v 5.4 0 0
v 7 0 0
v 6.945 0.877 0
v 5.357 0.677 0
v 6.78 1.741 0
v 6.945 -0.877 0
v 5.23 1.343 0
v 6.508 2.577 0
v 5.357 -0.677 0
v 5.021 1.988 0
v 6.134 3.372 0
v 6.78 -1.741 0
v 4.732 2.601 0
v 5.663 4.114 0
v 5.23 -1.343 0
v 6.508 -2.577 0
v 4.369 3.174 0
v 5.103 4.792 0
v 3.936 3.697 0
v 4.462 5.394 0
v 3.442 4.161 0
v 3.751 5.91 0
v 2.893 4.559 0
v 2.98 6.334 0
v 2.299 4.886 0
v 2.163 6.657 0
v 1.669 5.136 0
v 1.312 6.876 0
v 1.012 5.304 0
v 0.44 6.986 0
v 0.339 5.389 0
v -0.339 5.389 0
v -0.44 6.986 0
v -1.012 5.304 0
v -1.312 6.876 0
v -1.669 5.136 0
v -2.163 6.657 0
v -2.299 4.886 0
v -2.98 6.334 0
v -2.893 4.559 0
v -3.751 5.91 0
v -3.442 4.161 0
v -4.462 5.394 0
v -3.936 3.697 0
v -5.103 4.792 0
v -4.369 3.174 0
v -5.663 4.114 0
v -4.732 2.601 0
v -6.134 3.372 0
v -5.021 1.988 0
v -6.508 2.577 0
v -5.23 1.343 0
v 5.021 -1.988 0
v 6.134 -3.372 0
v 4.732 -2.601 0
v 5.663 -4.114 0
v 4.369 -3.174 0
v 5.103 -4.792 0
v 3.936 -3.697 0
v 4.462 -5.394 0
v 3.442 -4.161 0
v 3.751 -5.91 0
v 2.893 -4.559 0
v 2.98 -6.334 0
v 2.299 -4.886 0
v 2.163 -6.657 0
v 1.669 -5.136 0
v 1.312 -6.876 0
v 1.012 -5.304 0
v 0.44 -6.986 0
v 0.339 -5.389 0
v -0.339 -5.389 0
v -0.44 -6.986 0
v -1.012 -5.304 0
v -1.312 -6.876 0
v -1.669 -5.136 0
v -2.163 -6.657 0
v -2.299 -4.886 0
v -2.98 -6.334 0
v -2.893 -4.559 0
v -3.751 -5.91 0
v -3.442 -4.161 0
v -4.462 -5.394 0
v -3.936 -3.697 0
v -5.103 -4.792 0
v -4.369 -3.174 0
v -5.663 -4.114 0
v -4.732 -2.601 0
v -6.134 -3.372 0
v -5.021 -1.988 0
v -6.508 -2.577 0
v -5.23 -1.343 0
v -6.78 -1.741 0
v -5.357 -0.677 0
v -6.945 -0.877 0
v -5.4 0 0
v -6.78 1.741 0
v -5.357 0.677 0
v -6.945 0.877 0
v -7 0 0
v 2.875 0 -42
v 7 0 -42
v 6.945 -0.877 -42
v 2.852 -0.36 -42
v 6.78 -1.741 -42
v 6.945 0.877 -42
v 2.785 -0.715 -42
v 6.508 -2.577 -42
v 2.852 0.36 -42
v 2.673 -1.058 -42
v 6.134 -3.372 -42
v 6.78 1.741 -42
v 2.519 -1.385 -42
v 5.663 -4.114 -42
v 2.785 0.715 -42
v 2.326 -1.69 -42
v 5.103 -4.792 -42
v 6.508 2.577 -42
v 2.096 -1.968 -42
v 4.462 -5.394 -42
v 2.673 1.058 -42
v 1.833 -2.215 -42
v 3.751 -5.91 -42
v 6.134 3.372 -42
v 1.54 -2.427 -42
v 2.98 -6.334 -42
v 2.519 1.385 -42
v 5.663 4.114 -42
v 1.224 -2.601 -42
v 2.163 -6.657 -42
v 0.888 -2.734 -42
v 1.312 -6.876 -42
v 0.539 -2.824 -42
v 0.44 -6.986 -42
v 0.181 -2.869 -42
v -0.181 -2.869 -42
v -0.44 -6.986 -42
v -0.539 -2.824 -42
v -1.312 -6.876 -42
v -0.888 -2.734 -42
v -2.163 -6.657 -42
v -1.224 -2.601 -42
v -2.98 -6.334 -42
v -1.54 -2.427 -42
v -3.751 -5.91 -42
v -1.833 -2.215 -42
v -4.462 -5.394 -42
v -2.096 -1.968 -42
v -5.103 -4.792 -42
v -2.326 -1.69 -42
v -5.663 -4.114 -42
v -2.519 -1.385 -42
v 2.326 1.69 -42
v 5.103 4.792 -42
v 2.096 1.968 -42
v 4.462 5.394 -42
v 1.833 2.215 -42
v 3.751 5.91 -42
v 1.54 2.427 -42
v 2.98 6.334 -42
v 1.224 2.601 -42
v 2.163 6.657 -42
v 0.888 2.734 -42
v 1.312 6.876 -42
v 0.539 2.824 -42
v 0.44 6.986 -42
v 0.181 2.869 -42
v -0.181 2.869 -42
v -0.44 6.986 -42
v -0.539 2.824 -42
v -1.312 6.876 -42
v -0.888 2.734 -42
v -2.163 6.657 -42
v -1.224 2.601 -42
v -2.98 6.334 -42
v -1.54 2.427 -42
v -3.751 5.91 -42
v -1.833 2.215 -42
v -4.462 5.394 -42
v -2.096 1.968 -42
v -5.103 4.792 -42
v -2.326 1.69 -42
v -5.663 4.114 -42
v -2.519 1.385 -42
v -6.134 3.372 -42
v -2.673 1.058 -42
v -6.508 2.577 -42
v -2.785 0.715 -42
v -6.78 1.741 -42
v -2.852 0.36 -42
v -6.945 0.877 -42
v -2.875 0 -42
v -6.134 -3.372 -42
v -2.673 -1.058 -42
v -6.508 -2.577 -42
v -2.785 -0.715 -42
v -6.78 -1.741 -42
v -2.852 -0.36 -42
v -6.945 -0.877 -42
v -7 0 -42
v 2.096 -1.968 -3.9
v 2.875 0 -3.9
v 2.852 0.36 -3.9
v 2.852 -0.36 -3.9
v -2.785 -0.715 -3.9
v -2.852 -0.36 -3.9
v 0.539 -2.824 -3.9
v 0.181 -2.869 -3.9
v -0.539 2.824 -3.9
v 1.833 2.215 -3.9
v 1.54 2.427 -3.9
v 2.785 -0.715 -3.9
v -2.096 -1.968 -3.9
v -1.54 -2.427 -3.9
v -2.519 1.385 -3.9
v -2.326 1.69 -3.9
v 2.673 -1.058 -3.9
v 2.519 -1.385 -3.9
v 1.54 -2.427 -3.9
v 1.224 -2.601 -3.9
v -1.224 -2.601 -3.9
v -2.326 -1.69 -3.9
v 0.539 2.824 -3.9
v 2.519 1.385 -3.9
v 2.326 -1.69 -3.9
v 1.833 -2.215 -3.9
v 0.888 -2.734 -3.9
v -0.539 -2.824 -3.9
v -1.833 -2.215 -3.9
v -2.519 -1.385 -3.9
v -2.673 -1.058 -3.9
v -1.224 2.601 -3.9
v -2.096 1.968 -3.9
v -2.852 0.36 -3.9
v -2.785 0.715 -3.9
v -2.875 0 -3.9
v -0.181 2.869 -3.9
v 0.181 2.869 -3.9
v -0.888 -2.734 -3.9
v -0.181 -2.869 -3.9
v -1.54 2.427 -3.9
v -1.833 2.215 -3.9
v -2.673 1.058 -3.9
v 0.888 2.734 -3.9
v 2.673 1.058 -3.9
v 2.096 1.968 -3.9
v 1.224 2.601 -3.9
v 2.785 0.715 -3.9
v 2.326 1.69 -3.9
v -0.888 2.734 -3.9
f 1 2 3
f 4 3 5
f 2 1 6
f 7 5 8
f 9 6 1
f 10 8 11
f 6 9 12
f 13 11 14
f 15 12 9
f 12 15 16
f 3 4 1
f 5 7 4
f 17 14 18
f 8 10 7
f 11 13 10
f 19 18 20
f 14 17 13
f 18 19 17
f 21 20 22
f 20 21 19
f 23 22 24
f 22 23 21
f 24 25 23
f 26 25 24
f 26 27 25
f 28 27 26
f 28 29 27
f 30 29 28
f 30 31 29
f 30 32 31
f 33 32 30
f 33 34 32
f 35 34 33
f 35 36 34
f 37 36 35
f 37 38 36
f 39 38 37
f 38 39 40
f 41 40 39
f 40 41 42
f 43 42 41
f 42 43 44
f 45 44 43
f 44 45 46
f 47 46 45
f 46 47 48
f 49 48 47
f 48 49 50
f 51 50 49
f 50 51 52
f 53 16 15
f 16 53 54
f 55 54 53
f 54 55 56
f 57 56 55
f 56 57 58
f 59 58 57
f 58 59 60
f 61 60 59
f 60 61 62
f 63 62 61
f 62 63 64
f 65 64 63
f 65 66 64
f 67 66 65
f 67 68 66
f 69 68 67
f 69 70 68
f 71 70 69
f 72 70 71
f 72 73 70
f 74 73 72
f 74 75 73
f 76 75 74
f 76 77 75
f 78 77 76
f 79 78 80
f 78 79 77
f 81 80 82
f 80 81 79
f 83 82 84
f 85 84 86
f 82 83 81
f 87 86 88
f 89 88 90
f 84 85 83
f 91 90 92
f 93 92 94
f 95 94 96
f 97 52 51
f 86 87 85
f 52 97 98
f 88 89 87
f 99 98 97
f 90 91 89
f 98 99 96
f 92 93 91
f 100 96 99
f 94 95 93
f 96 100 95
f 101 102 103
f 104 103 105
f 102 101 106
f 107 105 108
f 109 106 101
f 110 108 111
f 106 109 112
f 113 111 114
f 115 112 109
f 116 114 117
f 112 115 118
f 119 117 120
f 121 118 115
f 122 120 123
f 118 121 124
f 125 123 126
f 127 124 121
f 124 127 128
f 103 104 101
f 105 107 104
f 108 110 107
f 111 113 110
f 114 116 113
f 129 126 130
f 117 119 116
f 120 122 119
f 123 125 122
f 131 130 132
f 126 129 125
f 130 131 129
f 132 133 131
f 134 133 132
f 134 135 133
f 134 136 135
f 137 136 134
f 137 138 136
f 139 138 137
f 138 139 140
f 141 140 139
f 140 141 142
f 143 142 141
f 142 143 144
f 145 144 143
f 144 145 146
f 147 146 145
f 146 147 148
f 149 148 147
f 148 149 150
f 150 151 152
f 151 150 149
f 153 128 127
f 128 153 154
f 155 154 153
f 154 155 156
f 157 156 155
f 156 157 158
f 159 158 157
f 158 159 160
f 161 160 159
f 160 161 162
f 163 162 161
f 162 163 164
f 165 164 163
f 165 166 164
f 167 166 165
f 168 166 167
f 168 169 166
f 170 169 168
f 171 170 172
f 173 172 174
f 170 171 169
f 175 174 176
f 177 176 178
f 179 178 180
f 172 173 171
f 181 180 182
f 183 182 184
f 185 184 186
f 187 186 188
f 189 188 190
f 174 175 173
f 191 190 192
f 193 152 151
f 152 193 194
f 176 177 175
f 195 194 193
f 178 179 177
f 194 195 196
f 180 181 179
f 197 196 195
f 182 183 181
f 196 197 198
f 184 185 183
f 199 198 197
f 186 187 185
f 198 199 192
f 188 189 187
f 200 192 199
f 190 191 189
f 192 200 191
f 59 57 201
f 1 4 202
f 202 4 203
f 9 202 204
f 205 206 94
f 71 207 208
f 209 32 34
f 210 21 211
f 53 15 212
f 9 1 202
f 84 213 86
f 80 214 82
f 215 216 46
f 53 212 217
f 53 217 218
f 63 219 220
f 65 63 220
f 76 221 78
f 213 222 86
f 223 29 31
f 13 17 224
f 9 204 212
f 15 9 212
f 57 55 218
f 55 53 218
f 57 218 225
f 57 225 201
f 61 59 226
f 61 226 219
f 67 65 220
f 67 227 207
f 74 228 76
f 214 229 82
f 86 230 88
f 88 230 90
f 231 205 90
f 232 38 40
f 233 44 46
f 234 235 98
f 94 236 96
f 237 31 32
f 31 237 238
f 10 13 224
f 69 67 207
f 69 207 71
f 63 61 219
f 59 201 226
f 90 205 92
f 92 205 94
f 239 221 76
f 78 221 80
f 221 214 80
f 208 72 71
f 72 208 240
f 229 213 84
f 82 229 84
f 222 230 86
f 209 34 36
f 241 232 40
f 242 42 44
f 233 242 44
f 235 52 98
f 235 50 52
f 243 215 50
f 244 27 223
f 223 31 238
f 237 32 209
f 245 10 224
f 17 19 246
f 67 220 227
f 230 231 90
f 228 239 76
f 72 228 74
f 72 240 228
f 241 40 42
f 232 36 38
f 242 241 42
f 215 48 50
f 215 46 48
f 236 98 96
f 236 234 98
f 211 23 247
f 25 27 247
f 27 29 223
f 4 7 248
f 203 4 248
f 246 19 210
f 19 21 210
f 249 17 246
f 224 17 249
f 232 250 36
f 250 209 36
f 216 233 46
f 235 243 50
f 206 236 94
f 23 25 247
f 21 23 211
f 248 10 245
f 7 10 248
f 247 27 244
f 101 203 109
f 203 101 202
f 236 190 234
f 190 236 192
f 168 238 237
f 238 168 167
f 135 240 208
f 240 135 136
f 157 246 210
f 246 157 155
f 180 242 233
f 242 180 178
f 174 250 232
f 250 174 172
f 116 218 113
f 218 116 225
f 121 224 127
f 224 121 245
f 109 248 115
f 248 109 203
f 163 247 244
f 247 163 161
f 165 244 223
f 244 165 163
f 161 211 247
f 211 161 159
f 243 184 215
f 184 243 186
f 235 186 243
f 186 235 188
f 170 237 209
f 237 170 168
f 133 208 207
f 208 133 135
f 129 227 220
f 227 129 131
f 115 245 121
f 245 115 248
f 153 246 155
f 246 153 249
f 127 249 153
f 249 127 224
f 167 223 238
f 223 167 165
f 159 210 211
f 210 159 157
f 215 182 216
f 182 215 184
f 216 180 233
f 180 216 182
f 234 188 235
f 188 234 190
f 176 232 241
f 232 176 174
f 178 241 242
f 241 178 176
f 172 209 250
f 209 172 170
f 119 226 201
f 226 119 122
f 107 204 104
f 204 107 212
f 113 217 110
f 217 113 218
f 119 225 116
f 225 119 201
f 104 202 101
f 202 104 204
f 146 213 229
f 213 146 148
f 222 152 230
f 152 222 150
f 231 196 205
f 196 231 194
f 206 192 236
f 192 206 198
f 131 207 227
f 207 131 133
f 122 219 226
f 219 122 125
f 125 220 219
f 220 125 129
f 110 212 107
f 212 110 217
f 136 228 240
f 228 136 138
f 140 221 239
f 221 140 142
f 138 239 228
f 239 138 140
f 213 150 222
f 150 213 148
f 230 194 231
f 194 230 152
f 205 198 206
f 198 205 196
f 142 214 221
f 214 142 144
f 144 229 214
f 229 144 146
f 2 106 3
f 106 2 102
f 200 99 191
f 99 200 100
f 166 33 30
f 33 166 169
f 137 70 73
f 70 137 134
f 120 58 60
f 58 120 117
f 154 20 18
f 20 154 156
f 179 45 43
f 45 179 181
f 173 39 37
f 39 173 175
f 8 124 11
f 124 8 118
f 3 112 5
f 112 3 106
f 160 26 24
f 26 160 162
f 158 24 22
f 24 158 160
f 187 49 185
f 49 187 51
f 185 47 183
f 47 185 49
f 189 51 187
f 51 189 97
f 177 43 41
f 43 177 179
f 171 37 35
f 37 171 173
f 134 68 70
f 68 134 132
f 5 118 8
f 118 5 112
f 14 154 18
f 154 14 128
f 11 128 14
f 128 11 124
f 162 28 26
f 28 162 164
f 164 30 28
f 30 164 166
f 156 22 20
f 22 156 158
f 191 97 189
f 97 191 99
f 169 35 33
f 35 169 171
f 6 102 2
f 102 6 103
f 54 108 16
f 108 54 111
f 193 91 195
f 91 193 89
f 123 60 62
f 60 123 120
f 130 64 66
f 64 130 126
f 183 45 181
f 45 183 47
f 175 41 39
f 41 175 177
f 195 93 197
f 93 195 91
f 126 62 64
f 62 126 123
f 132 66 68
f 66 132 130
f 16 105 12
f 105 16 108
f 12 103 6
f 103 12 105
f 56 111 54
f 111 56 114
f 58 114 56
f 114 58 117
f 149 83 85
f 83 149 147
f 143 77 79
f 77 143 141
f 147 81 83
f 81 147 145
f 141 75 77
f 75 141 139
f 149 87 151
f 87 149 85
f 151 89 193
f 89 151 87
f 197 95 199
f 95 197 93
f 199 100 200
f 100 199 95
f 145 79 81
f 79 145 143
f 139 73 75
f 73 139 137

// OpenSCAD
$fn = 50;


difference() {
	union() {
		translate(v = [0, 0, -42.0000000000]) {
			cylinder(h = 42, r = 7.0000000000);
		}
		cylinder(h = 0, r = 10.0000000000);
	}
	union() {
		translate(v = [0, 0, 0]) {
			rotate(a = [0, 0, 0]) {
				difference() {
					union() {
						#translate(v = [0, 0, -42.0000000000]) {
							cylinder(h = 42, r = 2.6000000000);
						}
						#translate(v = [0, 0, -3.9000000000]) {
							cylinder(h = 3.9000000000, r1 = 2.8750000000, r2 = 5.4000000000);
						}
						#translate(v = [0, 0, -42.0000000000]) {
							cylinder(h = 42, r = 2.8750000000);
						}
						#translate(v = [0, 0, -42.0000000000]) {
							cylinder(h = 42, r = 2.6000000000);
						}
					}
					union();
				}
			}
		}
	}
}
